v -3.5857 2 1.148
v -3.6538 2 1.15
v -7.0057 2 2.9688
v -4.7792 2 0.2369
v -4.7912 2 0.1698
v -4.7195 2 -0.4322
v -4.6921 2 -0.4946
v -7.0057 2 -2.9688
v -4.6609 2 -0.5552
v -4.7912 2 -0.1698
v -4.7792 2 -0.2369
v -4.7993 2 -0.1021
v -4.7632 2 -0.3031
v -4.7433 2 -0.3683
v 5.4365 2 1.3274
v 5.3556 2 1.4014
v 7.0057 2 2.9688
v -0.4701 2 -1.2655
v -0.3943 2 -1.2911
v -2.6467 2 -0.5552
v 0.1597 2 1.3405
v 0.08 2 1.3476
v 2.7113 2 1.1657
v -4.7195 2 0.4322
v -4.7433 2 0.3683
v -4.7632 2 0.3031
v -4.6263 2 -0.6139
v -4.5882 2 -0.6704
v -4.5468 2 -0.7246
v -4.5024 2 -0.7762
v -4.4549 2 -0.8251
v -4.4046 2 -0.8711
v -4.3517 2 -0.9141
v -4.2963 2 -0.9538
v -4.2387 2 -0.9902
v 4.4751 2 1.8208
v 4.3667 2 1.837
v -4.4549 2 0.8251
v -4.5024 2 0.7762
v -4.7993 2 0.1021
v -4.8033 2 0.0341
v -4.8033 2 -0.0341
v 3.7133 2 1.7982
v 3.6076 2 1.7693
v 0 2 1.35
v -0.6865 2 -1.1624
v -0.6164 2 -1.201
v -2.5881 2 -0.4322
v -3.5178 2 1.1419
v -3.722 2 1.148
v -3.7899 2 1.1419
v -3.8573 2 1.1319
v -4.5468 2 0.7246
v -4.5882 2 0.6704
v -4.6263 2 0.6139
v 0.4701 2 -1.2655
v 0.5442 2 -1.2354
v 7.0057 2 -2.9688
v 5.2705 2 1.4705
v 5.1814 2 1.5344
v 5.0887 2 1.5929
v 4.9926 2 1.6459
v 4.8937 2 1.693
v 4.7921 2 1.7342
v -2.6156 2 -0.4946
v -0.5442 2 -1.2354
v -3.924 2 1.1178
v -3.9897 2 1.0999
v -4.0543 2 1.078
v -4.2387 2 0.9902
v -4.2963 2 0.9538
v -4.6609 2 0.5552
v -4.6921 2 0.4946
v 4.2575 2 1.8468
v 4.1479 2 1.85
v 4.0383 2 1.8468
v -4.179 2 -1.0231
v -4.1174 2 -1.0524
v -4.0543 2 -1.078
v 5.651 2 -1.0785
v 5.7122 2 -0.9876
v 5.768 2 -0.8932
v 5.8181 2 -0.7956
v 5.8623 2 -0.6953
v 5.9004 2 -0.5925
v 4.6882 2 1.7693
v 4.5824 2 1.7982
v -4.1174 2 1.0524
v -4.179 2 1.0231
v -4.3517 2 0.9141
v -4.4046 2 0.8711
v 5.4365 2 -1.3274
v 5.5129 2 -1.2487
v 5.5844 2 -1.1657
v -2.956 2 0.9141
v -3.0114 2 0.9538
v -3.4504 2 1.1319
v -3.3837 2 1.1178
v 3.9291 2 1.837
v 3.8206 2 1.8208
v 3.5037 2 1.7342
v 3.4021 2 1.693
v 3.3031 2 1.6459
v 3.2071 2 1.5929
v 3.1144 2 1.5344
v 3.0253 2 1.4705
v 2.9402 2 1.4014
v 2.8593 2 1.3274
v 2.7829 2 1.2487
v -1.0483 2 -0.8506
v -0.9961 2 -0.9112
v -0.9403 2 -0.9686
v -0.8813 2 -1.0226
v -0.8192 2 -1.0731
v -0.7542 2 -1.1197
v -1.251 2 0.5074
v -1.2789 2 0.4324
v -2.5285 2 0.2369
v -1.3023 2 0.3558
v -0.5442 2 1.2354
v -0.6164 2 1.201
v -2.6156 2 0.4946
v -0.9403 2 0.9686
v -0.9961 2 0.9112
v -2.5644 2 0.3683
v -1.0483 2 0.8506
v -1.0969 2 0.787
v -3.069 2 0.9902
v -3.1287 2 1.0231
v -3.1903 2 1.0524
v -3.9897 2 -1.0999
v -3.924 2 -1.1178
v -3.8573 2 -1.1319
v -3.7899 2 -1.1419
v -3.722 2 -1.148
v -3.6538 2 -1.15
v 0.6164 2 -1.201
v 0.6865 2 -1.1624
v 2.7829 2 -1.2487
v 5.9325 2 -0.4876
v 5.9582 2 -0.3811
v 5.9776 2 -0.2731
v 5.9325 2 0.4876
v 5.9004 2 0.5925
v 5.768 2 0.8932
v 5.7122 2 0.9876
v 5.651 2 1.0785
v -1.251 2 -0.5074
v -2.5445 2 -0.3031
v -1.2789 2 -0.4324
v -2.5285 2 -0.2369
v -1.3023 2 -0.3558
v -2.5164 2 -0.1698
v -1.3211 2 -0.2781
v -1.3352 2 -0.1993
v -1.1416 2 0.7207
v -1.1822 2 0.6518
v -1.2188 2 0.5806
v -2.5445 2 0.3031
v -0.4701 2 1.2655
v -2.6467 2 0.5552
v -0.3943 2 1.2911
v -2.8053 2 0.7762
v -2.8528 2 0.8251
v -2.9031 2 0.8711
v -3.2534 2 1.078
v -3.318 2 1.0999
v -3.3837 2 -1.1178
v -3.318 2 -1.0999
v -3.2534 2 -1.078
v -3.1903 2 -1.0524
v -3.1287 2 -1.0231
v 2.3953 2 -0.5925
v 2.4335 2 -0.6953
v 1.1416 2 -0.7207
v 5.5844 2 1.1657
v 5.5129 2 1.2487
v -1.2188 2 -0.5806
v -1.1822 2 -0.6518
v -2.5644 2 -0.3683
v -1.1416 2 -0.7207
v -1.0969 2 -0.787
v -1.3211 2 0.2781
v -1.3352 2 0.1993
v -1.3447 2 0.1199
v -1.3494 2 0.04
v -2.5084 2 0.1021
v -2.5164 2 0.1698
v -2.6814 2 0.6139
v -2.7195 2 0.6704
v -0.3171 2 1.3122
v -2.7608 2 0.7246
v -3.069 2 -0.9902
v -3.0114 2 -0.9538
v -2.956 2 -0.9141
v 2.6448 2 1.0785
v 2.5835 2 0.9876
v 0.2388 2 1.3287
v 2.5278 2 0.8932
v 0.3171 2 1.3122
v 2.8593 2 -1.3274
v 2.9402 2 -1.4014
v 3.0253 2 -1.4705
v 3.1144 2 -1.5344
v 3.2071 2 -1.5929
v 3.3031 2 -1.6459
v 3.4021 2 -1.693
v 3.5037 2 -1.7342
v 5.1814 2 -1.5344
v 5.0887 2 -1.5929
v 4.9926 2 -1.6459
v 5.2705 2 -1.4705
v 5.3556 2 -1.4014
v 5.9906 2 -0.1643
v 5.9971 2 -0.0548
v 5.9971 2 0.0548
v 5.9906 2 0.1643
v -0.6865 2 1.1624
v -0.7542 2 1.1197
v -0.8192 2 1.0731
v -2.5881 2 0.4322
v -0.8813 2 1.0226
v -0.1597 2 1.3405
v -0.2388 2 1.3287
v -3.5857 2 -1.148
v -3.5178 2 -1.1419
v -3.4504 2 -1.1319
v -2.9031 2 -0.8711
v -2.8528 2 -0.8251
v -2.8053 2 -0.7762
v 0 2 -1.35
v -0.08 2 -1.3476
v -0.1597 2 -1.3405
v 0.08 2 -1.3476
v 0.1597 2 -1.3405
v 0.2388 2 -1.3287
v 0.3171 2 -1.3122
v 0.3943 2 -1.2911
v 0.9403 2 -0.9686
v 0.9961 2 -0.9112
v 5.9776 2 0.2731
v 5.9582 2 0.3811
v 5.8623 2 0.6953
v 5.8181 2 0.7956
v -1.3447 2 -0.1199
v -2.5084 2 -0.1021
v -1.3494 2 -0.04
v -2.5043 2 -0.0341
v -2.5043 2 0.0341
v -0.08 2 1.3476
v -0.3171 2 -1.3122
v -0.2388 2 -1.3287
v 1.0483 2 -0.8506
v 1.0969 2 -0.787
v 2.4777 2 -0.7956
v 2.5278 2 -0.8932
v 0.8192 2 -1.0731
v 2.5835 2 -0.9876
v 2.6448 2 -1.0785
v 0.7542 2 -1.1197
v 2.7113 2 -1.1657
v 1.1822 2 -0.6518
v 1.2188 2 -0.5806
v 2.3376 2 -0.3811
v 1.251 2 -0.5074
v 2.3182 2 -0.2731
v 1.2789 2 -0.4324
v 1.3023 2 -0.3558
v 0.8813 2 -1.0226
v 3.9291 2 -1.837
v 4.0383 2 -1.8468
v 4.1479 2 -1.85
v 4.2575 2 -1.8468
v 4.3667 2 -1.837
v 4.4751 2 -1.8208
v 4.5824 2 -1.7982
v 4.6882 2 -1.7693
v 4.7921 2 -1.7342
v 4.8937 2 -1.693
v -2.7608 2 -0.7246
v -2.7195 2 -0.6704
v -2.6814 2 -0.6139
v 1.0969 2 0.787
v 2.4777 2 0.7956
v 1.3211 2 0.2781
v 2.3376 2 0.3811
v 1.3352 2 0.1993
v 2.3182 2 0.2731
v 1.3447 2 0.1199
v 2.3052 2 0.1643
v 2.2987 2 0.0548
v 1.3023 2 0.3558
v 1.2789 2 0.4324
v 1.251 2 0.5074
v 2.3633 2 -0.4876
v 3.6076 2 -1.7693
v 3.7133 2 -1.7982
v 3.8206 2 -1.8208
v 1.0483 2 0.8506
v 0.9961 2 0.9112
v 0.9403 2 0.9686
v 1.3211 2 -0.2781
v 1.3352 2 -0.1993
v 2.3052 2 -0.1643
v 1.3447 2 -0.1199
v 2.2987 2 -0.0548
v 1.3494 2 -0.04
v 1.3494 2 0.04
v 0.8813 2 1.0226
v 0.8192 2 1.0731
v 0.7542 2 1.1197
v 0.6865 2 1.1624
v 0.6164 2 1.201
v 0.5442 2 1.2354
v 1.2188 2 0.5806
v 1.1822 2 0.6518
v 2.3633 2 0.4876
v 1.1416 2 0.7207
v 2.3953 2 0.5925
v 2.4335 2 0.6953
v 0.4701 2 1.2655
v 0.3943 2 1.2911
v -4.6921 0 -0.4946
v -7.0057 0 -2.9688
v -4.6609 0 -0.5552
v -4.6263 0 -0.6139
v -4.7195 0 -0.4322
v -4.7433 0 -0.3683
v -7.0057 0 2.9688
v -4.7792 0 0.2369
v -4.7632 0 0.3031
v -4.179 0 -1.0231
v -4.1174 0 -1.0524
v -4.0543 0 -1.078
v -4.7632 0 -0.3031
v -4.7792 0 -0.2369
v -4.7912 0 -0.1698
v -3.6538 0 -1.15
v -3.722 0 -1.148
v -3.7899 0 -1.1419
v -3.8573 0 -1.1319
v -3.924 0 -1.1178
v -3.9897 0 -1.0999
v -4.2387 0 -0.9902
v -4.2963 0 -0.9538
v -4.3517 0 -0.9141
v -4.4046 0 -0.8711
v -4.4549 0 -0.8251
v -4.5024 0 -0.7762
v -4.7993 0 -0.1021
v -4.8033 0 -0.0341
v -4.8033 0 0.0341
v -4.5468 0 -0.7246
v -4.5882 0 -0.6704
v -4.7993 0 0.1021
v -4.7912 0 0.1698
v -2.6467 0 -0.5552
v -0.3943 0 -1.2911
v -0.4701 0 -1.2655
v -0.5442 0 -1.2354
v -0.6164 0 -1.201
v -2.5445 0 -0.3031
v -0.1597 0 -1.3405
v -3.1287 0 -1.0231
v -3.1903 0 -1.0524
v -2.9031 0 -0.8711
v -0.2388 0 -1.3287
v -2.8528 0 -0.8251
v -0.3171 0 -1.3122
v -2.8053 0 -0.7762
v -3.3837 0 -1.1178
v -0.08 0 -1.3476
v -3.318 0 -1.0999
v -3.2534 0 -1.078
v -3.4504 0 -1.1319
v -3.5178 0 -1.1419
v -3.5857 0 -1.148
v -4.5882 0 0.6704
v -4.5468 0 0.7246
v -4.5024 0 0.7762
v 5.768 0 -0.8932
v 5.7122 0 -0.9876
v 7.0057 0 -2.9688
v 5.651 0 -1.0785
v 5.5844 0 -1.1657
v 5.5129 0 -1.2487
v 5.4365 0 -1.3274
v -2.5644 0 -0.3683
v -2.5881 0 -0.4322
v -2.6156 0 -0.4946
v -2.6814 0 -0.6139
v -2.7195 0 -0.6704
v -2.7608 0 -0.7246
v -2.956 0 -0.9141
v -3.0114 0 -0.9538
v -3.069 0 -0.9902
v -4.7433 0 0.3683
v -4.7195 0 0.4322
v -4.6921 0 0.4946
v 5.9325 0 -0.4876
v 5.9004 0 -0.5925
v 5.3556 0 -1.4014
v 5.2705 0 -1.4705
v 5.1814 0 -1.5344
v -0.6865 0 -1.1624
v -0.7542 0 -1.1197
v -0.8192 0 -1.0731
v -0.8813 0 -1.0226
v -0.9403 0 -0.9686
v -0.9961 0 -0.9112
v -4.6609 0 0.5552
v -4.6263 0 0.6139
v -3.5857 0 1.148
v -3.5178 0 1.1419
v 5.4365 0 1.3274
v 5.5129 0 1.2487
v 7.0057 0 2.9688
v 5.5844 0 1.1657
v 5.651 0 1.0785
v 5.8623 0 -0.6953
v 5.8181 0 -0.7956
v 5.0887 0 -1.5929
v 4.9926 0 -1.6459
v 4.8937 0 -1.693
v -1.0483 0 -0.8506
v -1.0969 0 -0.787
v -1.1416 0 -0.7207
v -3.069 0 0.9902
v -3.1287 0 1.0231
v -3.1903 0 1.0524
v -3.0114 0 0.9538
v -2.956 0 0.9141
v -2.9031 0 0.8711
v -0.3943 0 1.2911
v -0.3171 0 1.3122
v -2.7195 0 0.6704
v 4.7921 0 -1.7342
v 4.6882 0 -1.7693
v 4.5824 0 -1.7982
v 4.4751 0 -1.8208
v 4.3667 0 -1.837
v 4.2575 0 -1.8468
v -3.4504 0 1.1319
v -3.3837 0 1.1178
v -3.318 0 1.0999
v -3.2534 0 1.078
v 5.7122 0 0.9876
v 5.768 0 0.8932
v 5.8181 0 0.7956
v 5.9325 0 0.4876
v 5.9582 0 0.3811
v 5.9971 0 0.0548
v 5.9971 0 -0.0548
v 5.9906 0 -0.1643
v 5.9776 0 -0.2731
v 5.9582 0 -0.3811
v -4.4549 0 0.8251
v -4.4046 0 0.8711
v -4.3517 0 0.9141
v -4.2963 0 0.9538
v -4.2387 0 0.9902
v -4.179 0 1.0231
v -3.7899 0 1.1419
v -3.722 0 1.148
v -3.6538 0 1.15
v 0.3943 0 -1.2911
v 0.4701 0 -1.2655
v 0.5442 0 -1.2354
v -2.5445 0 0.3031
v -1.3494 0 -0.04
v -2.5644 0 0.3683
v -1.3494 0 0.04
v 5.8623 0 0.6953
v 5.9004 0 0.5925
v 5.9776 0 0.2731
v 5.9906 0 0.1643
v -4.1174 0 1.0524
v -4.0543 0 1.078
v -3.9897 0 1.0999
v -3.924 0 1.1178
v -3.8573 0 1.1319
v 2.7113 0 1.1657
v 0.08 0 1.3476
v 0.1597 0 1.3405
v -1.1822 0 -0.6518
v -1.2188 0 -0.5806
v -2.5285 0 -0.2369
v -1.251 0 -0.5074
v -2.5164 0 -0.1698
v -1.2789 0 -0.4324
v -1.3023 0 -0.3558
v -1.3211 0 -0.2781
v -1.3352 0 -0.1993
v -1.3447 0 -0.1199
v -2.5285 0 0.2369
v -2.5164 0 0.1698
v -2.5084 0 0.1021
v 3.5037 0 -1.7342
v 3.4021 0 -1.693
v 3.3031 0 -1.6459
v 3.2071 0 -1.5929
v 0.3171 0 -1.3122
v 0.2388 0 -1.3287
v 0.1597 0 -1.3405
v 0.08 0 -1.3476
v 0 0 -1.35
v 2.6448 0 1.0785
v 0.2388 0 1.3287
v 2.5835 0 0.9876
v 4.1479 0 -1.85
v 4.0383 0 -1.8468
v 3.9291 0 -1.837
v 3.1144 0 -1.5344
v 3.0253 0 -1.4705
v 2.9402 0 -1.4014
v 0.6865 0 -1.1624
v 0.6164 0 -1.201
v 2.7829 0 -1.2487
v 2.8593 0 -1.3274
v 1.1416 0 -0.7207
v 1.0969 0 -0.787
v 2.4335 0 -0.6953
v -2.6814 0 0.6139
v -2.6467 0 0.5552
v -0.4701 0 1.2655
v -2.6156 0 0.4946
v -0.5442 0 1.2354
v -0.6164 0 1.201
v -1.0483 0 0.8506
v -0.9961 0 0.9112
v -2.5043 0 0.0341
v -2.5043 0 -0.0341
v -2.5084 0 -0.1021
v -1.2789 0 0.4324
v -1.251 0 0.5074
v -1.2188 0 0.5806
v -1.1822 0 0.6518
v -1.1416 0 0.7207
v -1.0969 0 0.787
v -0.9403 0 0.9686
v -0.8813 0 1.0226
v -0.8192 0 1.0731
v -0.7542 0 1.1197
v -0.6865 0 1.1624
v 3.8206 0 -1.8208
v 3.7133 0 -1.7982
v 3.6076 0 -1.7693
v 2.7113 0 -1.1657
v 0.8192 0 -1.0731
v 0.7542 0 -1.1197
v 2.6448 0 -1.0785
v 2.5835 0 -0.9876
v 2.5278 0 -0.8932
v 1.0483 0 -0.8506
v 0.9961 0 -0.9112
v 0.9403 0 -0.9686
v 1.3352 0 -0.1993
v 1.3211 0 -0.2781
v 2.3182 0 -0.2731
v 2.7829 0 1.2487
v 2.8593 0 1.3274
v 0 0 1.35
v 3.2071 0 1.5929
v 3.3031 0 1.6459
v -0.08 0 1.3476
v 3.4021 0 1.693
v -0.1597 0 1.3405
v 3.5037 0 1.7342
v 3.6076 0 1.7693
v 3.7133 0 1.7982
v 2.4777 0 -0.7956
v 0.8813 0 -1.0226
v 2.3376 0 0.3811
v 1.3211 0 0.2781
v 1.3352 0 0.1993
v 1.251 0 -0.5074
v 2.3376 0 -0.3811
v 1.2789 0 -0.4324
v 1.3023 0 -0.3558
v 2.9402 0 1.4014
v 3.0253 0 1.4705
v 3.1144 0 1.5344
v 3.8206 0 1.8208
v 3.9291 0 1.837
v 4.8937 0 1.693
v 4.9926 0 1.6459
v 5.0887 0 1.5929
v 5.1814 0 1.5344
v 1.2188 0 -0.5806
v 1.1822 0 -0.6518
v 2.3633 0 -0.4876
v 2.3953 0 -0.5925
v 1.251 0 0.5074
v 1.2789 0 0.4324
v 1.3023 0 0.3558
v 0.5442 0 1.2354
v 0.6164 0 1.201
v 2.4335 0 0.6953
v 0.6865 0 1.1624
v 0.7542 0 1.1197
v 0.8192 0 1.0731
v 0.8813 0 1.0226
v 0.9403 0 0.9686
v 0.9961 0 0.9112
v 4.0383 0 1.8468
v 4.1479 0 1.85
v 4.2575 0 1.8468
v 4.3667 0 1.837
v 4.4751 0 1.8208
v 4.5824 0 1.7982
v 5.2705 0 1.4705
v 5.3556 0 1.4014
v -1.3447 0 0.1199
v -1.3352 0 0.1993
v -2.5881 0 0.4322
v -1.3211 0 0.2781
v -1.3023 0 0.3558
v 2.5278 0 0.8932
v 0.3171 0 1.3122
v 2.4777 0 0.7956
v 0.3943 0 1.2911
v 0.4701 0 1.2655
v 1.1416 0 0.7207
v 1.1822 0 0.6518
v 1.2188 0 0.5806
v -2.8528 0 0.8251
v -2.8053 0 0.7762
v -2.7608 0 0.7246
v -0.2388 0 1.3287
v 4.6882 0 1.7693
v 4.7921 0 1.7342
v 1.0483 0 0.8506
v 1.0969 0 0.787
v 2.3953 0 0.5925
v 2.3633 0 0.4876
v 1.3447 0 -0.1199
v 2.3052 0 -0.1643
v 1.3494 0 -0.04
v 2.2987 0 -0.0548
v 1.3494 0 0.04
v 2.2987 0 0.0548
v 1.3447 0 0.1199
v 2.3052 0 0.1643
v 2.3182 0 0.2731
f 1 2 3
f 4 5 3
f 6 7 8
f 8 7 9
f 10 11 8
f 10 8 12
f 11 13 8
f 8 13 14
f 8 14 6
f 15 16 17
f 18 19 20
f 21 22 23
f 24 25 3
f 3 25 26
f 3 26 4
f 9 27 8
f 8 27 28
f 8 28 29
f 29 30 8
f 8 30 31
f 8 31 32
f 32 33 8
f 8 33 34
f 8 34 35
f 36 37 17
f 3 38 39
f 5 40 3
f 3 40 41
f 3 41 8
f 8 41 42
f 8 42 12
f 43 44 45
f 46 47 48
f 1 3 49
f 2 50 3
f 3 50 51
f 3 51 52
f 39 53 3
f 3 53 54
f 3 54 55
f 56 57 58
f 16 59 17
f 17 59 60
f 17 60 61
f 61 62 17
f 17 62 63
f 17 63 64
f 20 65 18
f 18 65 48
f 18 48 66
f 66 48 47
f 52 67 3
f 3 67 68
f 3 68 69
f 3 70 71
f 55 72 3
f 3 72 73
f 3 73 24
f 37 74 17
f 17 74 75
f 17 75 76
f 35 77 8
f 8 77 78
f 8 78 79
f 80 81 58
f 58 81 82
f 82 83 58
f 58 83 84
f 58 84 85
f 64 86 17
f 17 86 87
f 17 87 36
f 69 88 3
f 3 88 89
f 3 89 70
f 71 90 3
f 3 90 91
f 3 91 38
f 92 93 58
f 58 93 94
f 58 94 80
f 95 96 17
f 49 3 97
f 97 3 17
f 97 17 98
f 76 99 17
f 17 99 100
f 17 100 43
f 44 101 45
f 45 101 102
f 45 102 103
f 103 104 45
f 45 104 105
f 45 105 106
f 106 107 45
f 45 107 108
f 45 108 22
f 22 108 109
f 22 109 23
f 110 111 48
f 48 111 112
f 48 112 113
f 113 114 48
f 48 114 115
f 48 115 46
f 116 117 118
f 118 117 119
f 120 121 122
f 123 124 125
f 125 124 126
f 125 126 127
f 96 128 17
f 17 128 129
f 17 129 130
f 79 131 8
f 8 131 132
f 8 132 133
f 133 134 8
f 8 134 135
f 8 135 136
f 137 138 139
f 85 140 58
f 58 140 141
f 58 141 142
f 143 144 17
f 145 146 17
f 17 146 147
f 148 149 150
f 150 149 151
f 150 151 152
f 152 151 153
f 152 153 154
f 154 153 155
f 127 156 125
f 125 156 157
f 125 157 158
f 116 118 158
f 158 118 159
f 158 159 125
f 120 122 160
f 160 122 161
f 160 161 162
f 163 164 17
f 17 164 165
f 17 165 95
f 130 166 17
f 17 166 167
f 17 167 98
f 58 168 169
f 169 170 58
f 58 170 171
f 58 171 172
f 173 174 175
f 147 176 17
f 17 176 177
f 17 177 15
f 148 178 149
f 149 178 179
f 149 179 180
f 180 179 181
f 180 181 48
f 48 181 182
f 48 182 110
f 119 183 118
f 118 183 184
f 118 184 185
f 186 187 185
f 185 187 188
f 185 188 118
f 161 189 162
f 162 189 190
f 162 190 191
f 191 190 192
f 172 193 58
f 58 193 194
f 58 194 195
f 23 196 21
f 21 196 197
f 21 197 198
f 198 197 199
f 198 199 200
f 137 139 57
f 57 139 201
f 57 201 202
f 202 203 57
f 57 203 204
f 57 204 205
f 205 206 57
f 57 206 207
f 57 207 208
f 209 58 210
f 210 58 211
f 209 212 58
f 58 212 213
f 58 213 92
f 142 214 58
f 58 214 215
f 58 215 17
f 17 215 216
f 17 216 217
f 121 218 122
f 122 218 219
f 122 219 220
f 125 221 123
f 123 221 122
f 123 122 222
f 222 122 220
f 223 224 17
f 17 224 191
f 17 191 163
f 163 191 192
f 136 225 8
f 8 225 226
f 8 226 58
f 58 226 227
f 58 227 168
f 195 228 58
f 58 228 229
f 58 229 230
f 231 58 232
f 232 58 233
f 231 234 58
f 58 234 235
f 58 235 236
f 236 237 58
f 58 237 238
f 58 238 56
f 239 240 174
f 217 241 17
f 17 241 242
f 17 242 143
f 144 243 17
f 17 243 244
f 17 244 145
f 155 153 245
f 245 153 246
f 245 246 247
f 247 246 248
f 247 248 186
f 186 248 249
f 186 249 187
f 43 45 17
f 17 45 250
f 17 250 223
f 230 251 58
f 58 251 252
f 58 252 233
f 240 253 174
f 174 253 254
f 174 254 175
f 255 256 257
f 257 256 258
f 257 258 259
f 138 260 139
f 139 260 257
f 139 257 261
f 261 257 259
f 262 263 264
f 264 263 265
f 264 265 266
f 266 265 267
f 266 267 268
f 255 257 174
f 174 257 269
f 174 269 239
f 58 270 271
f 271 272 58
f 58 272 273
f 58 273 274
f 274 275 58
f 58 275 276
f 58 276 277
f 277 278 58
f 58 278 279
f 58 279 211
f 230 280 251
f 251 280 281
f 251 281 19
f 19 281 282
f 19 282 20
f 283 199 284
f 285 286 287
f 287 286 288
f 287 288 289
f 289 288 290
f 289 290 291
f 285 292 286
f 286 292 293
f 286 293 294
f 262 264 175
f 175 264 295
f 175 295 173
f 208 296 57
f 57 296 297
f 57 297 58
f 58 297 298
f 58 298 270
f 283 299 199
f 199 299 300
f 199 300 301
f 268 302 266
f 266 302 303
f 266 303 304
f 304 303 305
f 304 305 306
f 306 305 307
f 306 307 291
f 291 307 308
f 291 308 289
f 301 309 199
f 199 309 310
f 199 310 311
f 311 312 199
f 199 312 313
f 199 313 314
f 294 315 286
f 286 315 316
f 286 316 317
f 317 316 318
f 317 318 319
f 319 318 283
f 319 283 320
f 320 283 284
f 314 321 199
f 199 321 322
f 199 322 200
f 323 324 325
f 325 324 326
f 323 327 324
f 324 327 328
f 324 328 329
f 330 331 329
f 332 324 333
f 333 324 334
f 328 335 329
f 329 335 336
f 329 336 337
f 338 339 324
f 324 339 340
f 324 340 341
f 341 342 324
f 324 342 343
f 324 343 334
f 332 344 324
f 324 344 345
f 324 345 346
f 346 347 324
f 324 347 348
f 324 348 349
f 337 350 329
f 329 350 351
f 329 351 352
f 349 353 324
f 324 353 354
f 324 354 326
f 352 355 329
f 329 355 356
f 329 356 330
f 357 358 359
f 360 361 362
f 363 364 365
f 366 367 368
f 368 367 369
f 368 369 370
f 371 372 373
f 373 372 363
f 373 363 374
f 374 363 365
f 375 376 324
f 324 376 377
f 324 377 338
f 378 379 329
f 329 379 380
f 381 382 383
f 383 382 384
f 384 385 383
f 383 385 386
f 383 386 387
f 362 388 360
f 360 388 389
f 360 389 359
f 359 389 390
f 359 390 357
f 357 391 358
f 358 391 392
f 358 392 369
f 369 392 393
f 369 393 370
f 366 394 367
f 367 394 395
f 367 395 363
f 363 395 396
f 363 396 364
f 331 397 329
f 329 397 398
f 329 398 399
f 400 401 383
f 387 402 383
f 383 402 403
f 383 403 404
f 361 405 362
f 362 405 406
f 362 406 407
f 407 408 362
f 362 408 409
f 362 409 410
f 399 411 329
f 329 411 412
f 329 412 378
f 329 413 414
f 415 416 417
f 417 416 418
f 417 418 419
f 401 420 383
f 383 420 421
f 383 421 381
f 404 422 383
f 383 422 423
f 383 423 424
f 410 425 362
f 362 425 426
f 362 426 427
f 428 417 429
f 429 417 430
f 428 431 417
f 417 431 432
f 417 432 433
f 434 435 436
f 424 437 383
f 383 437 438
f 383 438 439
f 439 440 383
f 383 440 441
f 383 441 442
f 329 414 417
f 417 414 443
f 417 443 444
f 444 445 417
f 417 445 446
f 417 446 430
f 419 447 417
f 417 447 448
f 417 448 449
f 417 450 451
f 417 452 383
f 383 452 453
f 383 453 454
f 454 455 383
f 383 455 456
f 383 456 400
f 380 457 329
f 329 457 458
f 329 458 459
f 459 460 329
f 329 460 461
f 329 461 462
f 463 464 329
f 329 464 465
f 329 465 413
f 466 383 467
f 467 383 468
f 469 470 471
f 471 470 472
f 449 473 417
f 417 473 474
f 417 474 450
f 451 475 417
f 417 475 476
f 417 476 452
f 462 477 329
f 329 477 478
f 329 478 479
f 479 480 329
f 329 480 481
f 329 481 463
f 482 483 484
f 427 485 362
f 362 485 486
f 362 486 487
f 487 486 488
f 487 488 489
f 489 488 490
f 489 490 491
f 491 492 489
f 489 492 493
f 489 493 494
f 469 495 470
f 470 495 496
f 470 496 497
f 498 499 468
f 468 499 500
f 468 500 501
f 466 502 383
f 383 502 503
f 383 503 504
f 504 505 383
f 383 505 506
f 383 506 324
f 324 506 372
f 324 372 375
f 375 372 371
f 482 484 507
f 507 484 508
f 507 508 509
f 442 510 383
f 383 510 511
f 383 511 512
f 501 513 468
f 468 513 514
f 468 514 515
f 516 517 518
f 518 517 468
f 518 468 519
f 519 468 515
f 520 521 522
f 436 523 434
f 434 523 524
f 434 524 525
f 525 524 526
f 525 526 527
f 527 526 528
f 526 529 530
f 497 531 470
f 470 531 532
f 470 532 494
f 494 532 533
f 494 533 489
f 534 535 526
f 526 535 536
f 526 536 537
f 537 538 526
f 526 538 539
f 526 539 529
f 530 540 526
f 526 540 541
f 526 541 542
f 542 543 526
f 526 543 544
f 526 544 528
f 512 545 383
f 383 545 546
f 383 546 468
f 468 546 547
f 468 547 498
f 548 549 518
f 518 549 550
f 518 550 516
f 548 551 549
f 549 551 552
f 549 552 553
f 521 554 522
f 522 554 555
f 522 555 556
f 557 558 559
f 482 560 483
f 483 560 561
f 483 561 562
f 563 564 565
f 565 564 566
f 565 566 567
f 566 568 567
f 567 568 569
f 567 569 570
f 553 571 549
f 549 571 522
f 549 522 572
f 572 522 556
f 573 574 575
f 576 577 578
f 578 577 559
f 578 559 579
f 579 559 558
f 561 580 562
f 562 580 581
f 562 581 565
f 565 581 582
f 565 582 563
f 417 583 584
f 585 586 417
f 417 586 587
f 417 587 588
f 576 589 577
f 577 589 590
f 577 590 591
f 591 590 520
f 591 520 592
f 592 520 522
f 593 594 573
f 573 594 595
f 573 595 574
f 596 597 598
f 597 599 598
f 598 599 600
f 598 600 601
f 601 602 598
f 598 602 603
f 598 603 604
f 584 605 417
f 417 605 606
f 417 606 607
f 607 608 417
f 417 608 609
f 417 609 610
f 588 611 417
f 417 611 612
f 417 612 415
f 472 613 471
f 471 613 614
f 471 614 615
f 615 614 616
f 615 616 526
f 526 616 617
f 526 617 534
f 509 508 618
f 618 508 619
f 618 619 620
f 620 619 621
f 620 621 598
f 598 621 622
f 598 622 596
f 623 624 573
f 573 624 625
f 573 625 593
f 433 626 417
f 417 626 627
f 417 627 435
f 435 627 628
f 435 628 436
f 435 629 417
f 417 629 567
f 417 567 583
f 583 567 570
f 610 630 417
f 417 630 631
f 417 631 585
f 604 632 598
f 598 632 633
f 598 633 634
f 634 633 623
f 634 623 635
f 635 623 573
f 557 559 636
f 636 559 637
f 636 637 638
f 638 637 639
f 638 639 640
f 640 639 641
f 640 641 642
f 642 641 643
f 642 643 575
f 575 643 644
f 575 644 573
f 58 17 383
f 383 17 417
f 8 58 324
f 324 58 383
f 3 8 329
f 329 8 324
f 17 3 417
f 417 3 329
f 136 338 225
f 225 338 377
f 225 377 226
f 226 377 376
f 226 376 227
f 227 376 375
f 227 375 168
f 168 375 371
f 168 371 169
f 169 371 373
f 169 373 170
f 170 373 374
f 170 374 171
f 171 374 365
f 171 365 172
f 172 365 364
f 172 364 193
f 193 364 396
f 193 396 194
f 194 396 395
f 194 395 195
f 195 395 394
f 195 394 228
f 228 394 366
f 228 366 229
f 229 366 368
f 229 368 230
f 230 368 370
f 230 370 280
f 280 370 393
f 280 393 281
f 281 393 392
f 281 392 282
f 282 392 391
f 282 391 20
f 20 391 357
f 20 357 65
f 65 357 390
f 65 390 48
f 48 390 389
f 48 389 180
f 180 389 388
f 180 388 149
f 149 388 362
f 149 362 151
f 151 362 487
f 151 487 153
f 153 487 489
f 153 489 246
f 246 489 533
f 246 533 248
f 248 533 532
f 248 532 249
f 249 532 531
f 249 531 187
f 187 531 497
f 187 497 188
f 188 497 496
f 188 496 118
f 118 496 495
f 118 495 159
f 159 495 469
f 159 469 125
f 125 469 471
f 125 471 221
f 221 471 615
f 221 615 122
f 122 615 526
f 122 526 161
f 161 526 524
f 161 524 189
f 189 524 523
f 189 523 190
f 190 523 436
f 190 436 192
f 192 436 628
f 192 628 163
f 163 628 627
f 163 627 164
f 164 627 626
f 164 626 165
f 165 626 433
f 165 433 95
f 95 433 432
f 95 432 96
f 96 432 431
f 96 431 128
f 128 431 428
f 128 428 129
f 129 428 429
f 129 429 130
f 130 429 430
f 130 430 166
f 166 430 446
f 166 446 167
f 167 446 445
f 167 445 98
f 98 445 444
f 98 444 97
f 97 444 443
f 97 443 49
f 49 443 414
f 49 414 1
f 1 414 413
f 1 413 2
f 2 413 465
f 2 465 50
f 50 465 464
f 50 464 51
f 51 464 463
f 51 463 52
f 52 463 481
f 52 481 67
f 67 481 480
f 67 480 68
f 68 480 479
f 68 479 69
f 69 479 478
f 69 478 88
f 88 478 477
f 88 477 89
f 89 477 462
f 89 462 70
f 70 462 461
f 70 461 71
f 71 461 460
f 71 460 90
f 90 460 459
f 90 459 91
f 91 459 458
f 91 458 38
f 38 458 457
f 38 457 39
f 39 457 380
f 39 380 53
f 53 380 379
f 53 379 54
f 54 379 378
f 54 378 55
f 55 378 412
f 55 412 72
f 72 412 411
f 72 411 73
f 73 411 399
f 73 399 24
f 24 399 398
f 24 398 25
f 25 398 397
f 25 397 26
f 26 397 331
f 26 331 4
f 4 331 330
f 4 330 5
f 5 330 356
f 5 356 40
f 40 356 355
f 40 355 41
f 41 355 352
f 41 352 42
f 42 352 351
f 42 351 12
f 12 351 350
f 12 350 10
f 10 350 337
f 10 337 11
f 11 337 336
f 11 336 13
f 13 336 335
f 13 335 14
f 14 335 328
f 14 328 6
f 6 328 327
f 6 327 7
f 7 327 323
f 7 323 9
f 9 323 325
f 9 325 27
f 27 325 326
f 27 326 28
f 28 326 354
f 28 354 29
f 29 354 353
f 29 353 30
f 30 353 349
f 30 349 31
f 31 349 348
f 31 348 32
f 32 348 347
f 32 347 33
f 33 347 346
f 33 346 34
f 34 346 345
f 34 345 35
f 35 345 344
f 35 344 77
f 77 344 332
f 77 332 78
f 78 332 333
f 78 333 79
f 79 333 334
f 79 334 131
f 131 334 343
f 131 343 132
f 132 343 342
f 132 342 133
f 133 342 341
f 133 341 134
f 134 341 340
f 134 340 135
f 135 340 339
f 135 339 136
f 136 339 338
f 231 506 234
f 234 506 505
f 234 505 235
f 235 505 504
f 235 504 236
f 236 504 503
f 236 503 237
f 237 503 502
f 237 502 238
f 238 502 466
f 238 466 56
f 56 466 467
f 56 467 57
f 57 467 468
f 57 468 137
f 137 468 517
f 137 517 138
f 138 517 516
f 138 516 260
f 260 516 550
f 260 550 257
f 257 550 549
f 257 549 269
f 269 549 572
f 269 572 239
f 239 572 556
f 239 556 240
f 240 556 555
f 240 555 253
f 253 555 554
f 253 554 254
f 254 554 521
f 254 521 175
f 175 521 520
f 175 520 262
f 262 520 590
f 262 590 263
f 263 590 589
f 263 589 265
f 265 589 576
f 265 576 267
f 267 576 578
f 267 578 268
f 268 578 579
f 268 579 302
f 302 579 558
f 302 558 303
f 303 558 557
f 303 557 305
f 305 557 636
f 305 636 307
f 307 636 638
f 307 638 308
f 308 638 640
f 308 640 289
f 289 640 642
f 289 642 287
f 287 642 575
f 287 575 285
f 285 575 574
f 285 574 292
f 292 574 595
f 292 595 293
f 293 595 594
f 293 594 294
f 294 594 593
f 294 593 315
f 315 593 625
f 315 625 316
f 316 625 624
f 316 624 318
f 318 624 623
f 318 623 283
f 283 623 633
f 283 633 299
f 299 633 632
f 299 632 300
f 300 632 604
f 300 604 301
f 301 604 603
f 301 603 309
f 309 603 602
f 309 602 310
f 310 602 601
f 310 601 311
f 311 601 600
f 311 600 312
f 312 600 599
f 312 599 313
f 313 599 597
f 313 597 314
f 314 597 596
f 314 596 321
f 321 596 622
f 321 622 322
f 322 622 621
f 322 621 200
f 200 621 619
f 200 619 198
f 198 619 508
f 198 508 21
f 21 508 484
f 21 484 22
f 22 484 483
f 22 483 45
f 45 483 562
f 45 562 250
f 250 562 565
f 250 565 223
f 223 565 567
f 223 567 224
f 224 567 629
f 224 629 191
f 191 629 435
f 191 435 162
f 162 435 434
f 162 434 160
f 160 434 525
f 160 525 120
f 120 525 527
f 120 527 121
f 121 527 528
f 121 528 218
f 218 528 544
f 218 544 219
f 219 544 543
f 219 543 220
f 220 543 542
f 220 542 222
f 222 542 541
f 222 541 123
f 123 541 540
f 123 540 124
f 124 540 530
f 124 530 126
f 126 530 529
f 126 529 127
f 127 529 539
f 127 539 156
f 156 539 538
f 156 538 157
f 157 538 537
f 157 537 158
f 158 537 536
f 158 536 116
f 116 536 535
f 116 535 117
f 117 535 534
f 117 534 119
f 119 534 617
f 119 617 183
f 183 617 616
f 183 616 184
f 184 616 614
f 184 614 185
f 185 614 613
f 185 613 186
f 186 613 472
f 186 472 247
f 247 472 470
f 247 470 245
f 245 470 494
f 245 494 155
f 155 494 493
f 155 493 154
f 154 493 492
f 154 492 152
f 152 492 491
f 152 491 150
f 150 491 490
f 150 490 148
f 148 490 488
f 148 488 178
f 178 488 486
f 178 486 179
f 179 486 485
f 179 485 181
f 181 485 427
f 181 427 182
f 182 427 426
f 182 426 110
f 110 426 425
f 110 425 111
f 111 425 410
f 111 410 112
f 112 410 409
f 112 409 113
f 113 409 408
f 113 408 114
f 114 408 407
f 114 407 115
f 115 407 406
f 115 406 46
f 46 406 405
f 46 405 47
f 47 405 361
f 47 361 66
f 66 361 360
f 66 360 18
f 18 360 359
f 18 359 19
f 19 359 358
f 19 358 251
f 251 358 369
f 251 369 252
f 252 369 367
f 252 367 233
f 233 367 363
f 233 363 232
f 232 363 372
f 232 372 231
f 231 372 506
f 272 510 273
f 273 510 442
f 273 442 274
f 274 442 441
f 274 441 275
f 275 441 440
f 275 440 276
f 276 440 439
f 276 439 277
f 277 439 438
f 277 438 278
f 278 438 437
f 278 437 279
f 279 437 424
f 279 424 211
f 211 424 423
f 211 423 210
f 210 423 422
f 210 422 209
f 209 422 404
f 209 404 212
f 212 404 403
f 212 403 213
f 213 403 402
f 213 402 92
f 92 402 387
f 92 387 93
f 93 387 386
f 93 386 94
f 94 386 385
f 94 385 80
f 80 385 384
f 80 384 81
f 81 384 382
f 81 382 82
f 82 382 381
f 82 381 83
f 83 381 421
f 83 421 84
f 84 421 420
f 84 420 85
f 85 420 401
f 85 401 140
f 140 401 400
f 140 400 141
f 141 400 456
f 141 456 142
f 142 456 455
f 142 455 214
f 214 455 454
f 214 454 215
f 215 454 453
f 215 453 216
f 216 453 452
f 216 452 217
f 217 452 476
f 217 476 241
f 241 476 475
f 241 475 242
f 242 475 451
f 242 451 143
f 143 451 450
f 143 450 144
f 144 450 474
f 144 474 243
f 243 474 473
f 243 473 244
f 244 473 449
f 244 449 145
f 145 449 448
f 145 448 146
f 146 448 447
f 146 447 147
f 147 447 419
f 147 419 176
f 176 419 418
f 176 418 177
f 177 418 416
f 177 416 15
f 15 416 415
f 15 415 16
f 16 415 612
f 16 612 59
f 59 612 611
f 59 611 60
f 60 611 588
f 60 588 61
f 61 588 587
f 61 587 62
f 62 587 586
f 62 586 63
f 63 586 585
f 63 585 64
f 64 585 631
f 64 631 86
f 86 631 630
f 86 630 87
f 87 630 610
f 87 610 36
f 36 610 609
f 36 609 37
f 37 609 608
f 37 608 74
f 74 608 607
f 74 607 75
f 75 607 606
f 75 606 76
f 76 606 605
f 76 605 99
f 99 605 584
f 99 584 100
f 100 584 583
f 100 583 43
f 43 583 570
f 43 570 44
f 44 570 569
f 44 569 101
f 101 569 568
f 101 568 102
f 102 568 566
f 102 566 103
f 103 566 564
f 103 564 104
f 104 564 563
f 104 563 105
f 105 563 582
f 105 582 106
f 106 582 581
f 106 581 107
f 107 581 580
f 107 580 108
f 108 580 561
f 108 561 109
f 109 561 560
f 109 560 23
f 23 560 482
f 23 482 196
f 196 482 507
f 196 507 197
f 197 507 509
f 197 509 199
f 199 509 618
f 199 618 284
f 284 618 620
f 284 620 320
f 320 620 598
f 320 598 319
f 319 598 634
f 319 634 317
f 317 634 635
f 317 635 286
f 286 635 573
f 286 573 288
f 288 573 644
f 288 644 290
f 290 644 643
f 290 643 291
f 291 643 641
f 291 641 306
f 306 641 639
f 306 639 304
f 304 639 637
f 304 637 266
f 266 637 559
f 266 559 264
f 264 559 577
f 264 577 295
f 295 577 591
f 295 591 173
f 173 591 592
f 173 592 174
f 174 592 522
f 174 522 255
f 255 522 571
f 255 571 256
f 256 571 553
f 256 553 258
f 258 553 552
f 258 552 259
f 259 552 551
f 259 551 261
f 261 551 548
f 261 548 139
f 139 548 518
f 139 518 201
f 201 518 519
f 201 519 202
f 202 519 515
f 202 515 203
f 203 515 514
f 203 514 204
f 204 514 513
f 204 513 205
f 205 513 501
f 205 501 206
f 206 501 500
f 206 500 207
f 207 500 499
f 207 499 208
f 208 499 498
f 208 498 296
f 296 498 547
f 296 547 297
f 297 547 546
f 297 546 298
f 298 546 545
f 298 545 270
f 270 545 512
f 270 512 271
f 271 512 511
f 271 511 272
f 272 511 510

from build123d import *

# Parameters (mm, degrees)
SKETCH1_W           = 14.011388394
SKETCH1_H           = 5.937625438
SKETCH1_R           = 1.15
SKETCH1_R_2         = 1.35
SKETCH1_R_3         = 1.85
BOSS_EXTRUDE1_DEPTH = 2


with BuildPart() as part:
    # Sketch1 → Boss-Extrude1 (new body)
    with BuildSketch(Plane(origin=(0, 0, 0), x_dir=(1, 0, 0), z_dir=(0, 1, 0))):
        Rectangle(SKETCH1_W, SKETCH1_H)
        with Locations((-3.653842684, 0)):
            Circle(SKETCH1_R, mode=Mode.SUBTRACT)
        Circle(SKETCH1_R_2, mode=Mode.SUBTRACT)
        with Locations((4.147880665, 0)):
            Circle(SKETCH1_R_3, mode=Mode.SUBTRACT)
    extrude(amount=BOSS_EXTRUDE1_DEPTH)


solid = part.part
